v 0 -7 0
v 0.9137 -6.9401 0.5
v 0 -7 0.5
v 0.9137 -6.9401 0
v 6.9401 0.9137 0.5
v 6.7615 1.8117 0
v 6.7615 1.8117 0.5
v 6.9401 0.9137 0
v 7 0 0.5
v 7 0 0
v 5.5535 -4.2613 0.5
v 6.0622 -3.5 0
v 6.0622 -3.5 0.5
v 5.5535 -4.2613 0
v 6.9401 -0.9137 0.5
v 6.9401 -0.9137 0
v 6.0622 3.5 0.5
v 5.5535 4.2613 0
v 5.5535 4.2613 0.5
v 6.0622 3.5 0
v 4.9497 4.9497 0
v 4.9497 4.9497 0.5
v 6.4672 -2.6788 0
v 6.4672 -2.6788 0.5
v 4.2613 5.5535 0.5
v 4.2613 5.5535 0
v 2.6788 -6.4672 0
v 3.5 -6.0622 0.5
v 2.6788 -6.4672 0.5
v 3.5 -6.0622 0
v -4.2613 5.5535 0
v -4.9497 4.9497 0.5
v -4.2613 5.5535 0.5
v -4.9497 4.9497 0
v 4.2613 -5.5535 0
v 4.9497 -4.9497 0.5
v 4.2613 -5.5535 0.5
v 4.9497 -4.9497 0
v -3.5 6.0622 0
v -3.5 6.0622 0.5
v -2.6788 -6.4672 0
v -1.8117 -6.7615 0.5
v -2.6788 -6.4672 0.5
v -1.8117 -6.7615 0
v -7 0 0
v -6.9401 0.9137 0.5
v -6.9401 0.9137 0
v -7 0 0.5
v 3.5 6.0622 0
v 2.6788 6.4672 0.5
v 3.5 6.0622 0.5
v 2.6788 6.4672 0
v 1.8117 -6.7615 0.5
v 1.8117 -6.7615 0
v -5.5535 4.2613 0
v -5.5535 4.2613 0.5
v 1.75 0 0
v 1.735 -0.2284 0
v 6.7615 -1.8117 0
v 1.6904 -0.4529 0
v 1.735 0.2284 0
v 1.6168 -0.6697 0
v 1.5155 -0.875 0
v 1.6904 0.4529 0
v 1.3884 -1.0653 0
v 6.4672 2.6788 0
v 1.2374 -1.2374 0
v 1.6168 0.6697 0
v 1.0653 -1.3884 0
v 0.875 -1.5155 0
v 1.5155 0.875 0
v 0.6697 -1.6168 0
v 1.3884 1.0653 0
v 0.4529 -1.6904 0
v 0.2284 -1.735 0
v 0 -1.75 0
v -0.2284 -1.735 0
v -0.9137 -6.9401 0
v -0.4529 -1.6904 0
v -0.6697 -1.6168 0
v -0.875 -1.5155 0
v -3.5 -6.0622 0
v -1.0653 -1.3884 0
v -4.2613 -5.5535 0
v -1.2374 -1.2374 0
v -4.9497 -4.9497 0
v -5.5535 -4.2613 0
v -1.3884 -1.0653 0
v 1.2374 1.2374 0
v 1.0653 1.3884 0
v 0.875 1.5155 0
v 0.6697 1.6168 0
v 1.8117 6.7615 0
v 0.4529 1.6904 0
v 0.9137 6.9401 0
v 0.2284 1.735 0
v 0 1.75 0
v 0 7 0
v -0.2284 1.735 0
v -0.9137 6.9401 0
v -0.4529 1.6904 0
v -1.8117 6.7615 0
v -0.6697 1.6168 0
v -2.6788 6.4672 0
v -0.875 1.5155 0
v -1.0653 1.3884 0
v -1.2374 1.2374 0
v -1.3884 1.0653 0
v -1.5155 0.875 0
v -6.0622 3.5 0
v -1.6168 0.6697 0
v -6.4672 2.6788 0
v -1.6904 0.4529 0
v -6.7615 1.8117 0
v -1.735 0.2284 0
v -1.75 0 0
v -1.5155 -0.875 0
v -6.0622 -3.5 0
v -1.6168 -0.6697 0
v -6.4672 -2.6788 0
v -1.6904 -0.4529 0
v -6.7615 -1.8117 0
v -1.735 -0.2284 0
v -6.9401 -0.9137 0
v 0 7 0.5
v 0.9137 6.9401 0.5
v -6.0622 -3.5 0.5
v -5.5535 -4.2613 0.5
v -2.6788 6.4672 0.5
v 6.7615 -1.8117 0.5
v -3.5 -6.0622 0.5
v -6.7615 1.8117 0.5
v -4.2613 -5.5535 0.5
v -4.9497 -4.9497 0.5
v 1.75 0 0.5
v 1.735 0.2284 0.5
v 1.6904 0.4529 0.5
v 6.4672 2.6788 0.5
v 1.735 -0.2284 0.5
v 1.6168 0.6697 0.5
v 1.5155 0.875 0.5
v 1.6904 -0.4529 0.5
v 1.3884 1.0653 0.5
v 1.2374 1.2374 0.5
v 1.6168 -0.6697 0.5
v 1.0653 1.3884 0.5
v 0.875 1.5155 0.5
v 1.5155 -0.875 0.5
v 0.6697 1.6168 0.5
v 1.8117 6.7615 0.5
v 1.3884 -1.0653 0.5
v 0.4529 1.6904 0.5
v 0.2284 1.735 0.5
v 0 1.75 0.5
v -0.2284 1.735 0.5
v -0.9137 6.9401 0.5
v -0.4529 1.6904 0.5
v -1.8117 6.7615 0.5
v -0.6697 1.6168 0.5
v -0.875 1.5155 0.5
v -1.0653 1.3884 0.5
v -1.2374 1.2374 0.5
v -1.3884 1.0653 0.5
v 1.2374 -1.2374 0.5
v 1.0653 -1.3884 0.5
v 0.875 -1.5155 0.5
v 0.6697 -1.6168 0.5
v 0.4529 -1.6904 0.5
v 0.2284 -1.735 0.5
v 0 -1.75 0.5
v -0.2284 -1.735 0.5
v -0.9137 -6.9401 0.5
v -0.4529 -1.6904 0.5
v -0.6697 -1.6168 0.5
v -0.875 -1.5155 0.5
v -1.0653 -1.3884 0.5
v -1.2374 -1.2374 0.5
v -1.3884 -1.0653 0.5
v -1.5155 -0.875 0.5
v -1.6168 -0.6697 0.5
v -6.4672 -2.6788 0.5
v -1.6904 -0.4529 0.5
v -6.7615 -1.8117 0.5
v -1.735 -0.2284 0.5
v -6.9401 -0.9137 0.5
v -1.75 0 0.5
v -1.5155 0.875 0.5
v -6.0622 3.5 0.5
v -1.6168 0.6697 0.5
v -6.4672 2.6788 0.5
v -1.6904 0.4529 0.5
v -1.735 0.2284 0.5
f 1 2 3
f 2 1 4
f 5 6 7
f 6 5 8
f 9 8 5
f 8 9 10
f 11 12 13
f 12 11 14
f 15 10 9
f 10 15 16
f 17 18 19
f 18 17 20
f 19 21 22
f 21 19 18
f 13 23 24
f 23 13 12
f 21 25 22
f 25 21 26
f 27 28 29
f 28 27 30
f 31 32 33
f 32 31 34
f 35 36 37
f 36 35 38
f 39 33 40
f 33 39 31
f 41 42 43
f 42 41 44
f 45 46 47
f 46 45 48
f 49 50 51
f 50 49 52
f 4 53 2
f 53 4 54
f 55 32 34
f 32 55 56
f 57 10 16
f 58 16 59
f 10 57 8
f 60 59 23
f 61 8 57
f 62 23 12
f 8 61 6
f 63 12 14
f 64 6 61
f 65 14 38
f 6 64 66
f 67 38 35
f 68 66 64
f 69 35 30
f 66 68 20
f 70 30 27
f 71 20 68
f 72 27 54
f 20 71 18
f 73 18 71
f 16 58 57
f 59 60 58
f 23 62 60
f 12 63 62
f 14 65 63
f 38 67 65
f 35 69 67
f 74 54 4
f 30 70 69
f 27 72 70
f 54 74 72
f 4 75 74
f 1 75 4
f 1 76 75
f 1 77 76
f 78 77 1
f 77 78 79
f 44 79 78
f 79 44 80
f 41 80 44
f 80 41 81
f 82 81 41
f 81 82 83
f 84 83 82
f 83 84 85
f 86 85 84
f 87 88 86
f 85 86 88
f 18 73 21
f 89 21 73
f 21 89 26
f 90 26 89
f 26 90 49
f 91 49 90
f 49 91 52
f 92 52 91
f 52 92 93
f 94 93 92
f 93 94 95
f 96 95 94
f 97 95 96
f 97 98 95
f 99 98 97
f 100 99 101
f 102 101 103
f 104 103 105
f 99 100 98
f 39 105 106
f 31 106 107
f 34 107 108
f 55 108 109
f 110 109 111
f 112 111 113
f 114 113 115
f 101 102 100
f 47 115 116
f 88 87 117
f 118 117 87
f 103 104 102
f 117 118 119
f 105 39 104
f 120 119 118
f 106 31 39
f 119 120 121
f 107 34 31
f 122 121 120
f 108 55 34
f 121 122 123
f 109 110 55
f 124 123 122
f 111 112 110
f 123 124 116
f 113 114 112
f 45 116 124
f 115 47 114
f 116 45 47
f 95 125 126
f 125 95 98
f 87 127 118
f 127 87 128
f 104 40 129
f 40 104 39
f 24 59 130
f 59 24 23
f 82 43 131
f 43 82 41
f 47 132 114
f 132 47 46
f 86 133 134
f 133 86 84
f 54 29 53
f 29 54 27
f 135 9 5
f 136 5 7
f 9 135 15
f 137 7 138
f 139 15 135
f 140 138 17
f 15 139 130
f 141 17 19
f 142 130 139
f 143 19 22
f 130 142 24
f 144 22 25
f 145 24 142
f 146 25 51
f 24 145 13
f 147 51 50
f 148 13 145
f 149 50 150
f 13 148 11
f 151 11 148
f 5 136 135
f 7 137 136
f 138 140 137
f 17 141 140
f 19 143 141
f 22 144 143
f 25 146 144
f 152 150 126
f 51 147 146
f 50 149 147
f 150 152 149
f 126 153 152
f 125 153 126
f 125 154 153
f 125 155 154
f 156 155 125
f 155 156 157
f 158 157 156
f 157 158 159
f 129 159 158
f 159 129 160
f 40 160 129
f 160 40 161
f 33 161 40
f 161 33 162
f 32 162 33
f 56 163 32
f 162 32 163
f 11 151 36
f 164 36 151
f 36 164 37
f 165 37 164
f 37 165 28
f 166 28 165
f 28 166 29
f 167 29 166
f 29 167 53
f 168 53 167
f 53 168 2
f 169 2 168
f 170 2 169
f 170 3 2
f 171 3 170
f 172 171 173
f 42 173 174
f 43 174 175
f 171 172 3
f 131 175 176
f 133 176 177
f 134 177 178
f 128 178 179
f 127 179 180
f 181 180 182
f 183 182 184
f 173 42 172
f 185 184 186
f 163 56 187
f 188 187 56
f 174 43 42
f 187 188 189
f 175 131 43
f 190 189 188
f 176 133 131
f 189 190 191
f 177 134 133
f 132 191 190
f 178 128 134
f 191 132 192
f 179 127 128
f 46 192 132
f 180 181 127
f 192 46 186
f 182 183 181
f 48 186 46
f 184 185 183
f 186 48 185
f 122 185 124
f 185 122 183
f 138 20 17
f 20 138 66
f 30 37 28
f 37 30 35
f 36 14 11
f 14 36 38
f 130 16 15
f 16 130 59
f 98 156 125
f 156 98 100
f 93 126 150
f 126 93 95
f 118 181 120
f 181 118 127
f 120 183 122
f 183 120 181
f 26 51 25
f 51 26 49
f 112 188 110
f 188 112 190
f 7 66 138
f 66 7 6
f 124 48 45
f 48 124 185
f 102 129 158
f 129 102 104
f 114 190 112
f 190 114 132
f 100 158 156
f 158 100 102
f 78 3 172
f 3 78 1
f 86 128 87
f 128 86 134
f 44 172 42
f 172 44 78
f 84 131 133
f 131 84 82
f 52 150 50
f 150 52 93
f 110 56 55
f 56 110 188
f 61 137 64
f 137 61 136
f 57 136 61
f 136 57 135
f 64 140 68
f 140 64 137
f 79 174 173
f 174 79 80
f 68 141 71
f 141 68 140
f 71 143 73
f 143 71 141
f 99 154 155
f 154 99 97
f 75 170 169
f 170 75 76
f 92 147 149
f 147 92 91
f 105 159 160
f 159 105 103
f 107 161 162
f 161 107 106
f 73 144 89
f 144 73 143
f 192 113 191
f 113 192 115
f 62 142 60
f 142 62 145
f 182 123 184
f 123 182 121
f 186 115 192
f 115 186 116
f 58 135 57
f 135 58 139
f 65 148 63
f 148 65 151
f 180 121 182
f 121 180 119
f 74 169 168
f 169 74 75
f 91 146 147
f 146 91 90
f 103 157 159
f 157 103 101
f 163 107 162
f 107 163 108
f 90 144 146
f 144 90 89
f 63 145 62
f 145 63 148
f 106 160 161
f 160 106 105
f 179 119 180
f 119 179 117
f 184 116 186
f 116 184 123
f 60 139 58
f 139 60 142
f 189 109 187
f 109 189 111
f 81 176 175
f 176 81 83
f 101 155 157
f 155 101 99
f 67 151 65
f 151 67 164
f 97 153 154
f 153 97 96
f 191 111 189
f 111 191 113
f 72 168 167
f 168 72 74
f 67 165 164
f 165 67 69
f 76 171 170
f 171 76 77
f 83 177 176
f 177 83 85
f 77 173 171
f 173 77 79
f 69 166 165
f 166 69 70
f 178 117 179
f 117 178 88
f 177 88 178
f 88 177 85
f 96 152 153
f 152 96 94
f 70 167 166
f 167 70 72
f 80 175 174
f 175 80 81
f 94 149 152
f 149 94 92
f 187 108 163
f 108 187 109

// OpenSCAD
// Gen-DH — assembly gap shim, h = run_clear (rotor face -> flange); copper is inside the flanges
include <parameters.scad>;
$fn = 48;
difference() {
    cylinder(d=spacer_pad_od, h=gap_spacer_h);
    translate([0, 0, -0.1]) cylinder(d=spacer_pad_id, h=gap_spacer_h + 0.2);
}
